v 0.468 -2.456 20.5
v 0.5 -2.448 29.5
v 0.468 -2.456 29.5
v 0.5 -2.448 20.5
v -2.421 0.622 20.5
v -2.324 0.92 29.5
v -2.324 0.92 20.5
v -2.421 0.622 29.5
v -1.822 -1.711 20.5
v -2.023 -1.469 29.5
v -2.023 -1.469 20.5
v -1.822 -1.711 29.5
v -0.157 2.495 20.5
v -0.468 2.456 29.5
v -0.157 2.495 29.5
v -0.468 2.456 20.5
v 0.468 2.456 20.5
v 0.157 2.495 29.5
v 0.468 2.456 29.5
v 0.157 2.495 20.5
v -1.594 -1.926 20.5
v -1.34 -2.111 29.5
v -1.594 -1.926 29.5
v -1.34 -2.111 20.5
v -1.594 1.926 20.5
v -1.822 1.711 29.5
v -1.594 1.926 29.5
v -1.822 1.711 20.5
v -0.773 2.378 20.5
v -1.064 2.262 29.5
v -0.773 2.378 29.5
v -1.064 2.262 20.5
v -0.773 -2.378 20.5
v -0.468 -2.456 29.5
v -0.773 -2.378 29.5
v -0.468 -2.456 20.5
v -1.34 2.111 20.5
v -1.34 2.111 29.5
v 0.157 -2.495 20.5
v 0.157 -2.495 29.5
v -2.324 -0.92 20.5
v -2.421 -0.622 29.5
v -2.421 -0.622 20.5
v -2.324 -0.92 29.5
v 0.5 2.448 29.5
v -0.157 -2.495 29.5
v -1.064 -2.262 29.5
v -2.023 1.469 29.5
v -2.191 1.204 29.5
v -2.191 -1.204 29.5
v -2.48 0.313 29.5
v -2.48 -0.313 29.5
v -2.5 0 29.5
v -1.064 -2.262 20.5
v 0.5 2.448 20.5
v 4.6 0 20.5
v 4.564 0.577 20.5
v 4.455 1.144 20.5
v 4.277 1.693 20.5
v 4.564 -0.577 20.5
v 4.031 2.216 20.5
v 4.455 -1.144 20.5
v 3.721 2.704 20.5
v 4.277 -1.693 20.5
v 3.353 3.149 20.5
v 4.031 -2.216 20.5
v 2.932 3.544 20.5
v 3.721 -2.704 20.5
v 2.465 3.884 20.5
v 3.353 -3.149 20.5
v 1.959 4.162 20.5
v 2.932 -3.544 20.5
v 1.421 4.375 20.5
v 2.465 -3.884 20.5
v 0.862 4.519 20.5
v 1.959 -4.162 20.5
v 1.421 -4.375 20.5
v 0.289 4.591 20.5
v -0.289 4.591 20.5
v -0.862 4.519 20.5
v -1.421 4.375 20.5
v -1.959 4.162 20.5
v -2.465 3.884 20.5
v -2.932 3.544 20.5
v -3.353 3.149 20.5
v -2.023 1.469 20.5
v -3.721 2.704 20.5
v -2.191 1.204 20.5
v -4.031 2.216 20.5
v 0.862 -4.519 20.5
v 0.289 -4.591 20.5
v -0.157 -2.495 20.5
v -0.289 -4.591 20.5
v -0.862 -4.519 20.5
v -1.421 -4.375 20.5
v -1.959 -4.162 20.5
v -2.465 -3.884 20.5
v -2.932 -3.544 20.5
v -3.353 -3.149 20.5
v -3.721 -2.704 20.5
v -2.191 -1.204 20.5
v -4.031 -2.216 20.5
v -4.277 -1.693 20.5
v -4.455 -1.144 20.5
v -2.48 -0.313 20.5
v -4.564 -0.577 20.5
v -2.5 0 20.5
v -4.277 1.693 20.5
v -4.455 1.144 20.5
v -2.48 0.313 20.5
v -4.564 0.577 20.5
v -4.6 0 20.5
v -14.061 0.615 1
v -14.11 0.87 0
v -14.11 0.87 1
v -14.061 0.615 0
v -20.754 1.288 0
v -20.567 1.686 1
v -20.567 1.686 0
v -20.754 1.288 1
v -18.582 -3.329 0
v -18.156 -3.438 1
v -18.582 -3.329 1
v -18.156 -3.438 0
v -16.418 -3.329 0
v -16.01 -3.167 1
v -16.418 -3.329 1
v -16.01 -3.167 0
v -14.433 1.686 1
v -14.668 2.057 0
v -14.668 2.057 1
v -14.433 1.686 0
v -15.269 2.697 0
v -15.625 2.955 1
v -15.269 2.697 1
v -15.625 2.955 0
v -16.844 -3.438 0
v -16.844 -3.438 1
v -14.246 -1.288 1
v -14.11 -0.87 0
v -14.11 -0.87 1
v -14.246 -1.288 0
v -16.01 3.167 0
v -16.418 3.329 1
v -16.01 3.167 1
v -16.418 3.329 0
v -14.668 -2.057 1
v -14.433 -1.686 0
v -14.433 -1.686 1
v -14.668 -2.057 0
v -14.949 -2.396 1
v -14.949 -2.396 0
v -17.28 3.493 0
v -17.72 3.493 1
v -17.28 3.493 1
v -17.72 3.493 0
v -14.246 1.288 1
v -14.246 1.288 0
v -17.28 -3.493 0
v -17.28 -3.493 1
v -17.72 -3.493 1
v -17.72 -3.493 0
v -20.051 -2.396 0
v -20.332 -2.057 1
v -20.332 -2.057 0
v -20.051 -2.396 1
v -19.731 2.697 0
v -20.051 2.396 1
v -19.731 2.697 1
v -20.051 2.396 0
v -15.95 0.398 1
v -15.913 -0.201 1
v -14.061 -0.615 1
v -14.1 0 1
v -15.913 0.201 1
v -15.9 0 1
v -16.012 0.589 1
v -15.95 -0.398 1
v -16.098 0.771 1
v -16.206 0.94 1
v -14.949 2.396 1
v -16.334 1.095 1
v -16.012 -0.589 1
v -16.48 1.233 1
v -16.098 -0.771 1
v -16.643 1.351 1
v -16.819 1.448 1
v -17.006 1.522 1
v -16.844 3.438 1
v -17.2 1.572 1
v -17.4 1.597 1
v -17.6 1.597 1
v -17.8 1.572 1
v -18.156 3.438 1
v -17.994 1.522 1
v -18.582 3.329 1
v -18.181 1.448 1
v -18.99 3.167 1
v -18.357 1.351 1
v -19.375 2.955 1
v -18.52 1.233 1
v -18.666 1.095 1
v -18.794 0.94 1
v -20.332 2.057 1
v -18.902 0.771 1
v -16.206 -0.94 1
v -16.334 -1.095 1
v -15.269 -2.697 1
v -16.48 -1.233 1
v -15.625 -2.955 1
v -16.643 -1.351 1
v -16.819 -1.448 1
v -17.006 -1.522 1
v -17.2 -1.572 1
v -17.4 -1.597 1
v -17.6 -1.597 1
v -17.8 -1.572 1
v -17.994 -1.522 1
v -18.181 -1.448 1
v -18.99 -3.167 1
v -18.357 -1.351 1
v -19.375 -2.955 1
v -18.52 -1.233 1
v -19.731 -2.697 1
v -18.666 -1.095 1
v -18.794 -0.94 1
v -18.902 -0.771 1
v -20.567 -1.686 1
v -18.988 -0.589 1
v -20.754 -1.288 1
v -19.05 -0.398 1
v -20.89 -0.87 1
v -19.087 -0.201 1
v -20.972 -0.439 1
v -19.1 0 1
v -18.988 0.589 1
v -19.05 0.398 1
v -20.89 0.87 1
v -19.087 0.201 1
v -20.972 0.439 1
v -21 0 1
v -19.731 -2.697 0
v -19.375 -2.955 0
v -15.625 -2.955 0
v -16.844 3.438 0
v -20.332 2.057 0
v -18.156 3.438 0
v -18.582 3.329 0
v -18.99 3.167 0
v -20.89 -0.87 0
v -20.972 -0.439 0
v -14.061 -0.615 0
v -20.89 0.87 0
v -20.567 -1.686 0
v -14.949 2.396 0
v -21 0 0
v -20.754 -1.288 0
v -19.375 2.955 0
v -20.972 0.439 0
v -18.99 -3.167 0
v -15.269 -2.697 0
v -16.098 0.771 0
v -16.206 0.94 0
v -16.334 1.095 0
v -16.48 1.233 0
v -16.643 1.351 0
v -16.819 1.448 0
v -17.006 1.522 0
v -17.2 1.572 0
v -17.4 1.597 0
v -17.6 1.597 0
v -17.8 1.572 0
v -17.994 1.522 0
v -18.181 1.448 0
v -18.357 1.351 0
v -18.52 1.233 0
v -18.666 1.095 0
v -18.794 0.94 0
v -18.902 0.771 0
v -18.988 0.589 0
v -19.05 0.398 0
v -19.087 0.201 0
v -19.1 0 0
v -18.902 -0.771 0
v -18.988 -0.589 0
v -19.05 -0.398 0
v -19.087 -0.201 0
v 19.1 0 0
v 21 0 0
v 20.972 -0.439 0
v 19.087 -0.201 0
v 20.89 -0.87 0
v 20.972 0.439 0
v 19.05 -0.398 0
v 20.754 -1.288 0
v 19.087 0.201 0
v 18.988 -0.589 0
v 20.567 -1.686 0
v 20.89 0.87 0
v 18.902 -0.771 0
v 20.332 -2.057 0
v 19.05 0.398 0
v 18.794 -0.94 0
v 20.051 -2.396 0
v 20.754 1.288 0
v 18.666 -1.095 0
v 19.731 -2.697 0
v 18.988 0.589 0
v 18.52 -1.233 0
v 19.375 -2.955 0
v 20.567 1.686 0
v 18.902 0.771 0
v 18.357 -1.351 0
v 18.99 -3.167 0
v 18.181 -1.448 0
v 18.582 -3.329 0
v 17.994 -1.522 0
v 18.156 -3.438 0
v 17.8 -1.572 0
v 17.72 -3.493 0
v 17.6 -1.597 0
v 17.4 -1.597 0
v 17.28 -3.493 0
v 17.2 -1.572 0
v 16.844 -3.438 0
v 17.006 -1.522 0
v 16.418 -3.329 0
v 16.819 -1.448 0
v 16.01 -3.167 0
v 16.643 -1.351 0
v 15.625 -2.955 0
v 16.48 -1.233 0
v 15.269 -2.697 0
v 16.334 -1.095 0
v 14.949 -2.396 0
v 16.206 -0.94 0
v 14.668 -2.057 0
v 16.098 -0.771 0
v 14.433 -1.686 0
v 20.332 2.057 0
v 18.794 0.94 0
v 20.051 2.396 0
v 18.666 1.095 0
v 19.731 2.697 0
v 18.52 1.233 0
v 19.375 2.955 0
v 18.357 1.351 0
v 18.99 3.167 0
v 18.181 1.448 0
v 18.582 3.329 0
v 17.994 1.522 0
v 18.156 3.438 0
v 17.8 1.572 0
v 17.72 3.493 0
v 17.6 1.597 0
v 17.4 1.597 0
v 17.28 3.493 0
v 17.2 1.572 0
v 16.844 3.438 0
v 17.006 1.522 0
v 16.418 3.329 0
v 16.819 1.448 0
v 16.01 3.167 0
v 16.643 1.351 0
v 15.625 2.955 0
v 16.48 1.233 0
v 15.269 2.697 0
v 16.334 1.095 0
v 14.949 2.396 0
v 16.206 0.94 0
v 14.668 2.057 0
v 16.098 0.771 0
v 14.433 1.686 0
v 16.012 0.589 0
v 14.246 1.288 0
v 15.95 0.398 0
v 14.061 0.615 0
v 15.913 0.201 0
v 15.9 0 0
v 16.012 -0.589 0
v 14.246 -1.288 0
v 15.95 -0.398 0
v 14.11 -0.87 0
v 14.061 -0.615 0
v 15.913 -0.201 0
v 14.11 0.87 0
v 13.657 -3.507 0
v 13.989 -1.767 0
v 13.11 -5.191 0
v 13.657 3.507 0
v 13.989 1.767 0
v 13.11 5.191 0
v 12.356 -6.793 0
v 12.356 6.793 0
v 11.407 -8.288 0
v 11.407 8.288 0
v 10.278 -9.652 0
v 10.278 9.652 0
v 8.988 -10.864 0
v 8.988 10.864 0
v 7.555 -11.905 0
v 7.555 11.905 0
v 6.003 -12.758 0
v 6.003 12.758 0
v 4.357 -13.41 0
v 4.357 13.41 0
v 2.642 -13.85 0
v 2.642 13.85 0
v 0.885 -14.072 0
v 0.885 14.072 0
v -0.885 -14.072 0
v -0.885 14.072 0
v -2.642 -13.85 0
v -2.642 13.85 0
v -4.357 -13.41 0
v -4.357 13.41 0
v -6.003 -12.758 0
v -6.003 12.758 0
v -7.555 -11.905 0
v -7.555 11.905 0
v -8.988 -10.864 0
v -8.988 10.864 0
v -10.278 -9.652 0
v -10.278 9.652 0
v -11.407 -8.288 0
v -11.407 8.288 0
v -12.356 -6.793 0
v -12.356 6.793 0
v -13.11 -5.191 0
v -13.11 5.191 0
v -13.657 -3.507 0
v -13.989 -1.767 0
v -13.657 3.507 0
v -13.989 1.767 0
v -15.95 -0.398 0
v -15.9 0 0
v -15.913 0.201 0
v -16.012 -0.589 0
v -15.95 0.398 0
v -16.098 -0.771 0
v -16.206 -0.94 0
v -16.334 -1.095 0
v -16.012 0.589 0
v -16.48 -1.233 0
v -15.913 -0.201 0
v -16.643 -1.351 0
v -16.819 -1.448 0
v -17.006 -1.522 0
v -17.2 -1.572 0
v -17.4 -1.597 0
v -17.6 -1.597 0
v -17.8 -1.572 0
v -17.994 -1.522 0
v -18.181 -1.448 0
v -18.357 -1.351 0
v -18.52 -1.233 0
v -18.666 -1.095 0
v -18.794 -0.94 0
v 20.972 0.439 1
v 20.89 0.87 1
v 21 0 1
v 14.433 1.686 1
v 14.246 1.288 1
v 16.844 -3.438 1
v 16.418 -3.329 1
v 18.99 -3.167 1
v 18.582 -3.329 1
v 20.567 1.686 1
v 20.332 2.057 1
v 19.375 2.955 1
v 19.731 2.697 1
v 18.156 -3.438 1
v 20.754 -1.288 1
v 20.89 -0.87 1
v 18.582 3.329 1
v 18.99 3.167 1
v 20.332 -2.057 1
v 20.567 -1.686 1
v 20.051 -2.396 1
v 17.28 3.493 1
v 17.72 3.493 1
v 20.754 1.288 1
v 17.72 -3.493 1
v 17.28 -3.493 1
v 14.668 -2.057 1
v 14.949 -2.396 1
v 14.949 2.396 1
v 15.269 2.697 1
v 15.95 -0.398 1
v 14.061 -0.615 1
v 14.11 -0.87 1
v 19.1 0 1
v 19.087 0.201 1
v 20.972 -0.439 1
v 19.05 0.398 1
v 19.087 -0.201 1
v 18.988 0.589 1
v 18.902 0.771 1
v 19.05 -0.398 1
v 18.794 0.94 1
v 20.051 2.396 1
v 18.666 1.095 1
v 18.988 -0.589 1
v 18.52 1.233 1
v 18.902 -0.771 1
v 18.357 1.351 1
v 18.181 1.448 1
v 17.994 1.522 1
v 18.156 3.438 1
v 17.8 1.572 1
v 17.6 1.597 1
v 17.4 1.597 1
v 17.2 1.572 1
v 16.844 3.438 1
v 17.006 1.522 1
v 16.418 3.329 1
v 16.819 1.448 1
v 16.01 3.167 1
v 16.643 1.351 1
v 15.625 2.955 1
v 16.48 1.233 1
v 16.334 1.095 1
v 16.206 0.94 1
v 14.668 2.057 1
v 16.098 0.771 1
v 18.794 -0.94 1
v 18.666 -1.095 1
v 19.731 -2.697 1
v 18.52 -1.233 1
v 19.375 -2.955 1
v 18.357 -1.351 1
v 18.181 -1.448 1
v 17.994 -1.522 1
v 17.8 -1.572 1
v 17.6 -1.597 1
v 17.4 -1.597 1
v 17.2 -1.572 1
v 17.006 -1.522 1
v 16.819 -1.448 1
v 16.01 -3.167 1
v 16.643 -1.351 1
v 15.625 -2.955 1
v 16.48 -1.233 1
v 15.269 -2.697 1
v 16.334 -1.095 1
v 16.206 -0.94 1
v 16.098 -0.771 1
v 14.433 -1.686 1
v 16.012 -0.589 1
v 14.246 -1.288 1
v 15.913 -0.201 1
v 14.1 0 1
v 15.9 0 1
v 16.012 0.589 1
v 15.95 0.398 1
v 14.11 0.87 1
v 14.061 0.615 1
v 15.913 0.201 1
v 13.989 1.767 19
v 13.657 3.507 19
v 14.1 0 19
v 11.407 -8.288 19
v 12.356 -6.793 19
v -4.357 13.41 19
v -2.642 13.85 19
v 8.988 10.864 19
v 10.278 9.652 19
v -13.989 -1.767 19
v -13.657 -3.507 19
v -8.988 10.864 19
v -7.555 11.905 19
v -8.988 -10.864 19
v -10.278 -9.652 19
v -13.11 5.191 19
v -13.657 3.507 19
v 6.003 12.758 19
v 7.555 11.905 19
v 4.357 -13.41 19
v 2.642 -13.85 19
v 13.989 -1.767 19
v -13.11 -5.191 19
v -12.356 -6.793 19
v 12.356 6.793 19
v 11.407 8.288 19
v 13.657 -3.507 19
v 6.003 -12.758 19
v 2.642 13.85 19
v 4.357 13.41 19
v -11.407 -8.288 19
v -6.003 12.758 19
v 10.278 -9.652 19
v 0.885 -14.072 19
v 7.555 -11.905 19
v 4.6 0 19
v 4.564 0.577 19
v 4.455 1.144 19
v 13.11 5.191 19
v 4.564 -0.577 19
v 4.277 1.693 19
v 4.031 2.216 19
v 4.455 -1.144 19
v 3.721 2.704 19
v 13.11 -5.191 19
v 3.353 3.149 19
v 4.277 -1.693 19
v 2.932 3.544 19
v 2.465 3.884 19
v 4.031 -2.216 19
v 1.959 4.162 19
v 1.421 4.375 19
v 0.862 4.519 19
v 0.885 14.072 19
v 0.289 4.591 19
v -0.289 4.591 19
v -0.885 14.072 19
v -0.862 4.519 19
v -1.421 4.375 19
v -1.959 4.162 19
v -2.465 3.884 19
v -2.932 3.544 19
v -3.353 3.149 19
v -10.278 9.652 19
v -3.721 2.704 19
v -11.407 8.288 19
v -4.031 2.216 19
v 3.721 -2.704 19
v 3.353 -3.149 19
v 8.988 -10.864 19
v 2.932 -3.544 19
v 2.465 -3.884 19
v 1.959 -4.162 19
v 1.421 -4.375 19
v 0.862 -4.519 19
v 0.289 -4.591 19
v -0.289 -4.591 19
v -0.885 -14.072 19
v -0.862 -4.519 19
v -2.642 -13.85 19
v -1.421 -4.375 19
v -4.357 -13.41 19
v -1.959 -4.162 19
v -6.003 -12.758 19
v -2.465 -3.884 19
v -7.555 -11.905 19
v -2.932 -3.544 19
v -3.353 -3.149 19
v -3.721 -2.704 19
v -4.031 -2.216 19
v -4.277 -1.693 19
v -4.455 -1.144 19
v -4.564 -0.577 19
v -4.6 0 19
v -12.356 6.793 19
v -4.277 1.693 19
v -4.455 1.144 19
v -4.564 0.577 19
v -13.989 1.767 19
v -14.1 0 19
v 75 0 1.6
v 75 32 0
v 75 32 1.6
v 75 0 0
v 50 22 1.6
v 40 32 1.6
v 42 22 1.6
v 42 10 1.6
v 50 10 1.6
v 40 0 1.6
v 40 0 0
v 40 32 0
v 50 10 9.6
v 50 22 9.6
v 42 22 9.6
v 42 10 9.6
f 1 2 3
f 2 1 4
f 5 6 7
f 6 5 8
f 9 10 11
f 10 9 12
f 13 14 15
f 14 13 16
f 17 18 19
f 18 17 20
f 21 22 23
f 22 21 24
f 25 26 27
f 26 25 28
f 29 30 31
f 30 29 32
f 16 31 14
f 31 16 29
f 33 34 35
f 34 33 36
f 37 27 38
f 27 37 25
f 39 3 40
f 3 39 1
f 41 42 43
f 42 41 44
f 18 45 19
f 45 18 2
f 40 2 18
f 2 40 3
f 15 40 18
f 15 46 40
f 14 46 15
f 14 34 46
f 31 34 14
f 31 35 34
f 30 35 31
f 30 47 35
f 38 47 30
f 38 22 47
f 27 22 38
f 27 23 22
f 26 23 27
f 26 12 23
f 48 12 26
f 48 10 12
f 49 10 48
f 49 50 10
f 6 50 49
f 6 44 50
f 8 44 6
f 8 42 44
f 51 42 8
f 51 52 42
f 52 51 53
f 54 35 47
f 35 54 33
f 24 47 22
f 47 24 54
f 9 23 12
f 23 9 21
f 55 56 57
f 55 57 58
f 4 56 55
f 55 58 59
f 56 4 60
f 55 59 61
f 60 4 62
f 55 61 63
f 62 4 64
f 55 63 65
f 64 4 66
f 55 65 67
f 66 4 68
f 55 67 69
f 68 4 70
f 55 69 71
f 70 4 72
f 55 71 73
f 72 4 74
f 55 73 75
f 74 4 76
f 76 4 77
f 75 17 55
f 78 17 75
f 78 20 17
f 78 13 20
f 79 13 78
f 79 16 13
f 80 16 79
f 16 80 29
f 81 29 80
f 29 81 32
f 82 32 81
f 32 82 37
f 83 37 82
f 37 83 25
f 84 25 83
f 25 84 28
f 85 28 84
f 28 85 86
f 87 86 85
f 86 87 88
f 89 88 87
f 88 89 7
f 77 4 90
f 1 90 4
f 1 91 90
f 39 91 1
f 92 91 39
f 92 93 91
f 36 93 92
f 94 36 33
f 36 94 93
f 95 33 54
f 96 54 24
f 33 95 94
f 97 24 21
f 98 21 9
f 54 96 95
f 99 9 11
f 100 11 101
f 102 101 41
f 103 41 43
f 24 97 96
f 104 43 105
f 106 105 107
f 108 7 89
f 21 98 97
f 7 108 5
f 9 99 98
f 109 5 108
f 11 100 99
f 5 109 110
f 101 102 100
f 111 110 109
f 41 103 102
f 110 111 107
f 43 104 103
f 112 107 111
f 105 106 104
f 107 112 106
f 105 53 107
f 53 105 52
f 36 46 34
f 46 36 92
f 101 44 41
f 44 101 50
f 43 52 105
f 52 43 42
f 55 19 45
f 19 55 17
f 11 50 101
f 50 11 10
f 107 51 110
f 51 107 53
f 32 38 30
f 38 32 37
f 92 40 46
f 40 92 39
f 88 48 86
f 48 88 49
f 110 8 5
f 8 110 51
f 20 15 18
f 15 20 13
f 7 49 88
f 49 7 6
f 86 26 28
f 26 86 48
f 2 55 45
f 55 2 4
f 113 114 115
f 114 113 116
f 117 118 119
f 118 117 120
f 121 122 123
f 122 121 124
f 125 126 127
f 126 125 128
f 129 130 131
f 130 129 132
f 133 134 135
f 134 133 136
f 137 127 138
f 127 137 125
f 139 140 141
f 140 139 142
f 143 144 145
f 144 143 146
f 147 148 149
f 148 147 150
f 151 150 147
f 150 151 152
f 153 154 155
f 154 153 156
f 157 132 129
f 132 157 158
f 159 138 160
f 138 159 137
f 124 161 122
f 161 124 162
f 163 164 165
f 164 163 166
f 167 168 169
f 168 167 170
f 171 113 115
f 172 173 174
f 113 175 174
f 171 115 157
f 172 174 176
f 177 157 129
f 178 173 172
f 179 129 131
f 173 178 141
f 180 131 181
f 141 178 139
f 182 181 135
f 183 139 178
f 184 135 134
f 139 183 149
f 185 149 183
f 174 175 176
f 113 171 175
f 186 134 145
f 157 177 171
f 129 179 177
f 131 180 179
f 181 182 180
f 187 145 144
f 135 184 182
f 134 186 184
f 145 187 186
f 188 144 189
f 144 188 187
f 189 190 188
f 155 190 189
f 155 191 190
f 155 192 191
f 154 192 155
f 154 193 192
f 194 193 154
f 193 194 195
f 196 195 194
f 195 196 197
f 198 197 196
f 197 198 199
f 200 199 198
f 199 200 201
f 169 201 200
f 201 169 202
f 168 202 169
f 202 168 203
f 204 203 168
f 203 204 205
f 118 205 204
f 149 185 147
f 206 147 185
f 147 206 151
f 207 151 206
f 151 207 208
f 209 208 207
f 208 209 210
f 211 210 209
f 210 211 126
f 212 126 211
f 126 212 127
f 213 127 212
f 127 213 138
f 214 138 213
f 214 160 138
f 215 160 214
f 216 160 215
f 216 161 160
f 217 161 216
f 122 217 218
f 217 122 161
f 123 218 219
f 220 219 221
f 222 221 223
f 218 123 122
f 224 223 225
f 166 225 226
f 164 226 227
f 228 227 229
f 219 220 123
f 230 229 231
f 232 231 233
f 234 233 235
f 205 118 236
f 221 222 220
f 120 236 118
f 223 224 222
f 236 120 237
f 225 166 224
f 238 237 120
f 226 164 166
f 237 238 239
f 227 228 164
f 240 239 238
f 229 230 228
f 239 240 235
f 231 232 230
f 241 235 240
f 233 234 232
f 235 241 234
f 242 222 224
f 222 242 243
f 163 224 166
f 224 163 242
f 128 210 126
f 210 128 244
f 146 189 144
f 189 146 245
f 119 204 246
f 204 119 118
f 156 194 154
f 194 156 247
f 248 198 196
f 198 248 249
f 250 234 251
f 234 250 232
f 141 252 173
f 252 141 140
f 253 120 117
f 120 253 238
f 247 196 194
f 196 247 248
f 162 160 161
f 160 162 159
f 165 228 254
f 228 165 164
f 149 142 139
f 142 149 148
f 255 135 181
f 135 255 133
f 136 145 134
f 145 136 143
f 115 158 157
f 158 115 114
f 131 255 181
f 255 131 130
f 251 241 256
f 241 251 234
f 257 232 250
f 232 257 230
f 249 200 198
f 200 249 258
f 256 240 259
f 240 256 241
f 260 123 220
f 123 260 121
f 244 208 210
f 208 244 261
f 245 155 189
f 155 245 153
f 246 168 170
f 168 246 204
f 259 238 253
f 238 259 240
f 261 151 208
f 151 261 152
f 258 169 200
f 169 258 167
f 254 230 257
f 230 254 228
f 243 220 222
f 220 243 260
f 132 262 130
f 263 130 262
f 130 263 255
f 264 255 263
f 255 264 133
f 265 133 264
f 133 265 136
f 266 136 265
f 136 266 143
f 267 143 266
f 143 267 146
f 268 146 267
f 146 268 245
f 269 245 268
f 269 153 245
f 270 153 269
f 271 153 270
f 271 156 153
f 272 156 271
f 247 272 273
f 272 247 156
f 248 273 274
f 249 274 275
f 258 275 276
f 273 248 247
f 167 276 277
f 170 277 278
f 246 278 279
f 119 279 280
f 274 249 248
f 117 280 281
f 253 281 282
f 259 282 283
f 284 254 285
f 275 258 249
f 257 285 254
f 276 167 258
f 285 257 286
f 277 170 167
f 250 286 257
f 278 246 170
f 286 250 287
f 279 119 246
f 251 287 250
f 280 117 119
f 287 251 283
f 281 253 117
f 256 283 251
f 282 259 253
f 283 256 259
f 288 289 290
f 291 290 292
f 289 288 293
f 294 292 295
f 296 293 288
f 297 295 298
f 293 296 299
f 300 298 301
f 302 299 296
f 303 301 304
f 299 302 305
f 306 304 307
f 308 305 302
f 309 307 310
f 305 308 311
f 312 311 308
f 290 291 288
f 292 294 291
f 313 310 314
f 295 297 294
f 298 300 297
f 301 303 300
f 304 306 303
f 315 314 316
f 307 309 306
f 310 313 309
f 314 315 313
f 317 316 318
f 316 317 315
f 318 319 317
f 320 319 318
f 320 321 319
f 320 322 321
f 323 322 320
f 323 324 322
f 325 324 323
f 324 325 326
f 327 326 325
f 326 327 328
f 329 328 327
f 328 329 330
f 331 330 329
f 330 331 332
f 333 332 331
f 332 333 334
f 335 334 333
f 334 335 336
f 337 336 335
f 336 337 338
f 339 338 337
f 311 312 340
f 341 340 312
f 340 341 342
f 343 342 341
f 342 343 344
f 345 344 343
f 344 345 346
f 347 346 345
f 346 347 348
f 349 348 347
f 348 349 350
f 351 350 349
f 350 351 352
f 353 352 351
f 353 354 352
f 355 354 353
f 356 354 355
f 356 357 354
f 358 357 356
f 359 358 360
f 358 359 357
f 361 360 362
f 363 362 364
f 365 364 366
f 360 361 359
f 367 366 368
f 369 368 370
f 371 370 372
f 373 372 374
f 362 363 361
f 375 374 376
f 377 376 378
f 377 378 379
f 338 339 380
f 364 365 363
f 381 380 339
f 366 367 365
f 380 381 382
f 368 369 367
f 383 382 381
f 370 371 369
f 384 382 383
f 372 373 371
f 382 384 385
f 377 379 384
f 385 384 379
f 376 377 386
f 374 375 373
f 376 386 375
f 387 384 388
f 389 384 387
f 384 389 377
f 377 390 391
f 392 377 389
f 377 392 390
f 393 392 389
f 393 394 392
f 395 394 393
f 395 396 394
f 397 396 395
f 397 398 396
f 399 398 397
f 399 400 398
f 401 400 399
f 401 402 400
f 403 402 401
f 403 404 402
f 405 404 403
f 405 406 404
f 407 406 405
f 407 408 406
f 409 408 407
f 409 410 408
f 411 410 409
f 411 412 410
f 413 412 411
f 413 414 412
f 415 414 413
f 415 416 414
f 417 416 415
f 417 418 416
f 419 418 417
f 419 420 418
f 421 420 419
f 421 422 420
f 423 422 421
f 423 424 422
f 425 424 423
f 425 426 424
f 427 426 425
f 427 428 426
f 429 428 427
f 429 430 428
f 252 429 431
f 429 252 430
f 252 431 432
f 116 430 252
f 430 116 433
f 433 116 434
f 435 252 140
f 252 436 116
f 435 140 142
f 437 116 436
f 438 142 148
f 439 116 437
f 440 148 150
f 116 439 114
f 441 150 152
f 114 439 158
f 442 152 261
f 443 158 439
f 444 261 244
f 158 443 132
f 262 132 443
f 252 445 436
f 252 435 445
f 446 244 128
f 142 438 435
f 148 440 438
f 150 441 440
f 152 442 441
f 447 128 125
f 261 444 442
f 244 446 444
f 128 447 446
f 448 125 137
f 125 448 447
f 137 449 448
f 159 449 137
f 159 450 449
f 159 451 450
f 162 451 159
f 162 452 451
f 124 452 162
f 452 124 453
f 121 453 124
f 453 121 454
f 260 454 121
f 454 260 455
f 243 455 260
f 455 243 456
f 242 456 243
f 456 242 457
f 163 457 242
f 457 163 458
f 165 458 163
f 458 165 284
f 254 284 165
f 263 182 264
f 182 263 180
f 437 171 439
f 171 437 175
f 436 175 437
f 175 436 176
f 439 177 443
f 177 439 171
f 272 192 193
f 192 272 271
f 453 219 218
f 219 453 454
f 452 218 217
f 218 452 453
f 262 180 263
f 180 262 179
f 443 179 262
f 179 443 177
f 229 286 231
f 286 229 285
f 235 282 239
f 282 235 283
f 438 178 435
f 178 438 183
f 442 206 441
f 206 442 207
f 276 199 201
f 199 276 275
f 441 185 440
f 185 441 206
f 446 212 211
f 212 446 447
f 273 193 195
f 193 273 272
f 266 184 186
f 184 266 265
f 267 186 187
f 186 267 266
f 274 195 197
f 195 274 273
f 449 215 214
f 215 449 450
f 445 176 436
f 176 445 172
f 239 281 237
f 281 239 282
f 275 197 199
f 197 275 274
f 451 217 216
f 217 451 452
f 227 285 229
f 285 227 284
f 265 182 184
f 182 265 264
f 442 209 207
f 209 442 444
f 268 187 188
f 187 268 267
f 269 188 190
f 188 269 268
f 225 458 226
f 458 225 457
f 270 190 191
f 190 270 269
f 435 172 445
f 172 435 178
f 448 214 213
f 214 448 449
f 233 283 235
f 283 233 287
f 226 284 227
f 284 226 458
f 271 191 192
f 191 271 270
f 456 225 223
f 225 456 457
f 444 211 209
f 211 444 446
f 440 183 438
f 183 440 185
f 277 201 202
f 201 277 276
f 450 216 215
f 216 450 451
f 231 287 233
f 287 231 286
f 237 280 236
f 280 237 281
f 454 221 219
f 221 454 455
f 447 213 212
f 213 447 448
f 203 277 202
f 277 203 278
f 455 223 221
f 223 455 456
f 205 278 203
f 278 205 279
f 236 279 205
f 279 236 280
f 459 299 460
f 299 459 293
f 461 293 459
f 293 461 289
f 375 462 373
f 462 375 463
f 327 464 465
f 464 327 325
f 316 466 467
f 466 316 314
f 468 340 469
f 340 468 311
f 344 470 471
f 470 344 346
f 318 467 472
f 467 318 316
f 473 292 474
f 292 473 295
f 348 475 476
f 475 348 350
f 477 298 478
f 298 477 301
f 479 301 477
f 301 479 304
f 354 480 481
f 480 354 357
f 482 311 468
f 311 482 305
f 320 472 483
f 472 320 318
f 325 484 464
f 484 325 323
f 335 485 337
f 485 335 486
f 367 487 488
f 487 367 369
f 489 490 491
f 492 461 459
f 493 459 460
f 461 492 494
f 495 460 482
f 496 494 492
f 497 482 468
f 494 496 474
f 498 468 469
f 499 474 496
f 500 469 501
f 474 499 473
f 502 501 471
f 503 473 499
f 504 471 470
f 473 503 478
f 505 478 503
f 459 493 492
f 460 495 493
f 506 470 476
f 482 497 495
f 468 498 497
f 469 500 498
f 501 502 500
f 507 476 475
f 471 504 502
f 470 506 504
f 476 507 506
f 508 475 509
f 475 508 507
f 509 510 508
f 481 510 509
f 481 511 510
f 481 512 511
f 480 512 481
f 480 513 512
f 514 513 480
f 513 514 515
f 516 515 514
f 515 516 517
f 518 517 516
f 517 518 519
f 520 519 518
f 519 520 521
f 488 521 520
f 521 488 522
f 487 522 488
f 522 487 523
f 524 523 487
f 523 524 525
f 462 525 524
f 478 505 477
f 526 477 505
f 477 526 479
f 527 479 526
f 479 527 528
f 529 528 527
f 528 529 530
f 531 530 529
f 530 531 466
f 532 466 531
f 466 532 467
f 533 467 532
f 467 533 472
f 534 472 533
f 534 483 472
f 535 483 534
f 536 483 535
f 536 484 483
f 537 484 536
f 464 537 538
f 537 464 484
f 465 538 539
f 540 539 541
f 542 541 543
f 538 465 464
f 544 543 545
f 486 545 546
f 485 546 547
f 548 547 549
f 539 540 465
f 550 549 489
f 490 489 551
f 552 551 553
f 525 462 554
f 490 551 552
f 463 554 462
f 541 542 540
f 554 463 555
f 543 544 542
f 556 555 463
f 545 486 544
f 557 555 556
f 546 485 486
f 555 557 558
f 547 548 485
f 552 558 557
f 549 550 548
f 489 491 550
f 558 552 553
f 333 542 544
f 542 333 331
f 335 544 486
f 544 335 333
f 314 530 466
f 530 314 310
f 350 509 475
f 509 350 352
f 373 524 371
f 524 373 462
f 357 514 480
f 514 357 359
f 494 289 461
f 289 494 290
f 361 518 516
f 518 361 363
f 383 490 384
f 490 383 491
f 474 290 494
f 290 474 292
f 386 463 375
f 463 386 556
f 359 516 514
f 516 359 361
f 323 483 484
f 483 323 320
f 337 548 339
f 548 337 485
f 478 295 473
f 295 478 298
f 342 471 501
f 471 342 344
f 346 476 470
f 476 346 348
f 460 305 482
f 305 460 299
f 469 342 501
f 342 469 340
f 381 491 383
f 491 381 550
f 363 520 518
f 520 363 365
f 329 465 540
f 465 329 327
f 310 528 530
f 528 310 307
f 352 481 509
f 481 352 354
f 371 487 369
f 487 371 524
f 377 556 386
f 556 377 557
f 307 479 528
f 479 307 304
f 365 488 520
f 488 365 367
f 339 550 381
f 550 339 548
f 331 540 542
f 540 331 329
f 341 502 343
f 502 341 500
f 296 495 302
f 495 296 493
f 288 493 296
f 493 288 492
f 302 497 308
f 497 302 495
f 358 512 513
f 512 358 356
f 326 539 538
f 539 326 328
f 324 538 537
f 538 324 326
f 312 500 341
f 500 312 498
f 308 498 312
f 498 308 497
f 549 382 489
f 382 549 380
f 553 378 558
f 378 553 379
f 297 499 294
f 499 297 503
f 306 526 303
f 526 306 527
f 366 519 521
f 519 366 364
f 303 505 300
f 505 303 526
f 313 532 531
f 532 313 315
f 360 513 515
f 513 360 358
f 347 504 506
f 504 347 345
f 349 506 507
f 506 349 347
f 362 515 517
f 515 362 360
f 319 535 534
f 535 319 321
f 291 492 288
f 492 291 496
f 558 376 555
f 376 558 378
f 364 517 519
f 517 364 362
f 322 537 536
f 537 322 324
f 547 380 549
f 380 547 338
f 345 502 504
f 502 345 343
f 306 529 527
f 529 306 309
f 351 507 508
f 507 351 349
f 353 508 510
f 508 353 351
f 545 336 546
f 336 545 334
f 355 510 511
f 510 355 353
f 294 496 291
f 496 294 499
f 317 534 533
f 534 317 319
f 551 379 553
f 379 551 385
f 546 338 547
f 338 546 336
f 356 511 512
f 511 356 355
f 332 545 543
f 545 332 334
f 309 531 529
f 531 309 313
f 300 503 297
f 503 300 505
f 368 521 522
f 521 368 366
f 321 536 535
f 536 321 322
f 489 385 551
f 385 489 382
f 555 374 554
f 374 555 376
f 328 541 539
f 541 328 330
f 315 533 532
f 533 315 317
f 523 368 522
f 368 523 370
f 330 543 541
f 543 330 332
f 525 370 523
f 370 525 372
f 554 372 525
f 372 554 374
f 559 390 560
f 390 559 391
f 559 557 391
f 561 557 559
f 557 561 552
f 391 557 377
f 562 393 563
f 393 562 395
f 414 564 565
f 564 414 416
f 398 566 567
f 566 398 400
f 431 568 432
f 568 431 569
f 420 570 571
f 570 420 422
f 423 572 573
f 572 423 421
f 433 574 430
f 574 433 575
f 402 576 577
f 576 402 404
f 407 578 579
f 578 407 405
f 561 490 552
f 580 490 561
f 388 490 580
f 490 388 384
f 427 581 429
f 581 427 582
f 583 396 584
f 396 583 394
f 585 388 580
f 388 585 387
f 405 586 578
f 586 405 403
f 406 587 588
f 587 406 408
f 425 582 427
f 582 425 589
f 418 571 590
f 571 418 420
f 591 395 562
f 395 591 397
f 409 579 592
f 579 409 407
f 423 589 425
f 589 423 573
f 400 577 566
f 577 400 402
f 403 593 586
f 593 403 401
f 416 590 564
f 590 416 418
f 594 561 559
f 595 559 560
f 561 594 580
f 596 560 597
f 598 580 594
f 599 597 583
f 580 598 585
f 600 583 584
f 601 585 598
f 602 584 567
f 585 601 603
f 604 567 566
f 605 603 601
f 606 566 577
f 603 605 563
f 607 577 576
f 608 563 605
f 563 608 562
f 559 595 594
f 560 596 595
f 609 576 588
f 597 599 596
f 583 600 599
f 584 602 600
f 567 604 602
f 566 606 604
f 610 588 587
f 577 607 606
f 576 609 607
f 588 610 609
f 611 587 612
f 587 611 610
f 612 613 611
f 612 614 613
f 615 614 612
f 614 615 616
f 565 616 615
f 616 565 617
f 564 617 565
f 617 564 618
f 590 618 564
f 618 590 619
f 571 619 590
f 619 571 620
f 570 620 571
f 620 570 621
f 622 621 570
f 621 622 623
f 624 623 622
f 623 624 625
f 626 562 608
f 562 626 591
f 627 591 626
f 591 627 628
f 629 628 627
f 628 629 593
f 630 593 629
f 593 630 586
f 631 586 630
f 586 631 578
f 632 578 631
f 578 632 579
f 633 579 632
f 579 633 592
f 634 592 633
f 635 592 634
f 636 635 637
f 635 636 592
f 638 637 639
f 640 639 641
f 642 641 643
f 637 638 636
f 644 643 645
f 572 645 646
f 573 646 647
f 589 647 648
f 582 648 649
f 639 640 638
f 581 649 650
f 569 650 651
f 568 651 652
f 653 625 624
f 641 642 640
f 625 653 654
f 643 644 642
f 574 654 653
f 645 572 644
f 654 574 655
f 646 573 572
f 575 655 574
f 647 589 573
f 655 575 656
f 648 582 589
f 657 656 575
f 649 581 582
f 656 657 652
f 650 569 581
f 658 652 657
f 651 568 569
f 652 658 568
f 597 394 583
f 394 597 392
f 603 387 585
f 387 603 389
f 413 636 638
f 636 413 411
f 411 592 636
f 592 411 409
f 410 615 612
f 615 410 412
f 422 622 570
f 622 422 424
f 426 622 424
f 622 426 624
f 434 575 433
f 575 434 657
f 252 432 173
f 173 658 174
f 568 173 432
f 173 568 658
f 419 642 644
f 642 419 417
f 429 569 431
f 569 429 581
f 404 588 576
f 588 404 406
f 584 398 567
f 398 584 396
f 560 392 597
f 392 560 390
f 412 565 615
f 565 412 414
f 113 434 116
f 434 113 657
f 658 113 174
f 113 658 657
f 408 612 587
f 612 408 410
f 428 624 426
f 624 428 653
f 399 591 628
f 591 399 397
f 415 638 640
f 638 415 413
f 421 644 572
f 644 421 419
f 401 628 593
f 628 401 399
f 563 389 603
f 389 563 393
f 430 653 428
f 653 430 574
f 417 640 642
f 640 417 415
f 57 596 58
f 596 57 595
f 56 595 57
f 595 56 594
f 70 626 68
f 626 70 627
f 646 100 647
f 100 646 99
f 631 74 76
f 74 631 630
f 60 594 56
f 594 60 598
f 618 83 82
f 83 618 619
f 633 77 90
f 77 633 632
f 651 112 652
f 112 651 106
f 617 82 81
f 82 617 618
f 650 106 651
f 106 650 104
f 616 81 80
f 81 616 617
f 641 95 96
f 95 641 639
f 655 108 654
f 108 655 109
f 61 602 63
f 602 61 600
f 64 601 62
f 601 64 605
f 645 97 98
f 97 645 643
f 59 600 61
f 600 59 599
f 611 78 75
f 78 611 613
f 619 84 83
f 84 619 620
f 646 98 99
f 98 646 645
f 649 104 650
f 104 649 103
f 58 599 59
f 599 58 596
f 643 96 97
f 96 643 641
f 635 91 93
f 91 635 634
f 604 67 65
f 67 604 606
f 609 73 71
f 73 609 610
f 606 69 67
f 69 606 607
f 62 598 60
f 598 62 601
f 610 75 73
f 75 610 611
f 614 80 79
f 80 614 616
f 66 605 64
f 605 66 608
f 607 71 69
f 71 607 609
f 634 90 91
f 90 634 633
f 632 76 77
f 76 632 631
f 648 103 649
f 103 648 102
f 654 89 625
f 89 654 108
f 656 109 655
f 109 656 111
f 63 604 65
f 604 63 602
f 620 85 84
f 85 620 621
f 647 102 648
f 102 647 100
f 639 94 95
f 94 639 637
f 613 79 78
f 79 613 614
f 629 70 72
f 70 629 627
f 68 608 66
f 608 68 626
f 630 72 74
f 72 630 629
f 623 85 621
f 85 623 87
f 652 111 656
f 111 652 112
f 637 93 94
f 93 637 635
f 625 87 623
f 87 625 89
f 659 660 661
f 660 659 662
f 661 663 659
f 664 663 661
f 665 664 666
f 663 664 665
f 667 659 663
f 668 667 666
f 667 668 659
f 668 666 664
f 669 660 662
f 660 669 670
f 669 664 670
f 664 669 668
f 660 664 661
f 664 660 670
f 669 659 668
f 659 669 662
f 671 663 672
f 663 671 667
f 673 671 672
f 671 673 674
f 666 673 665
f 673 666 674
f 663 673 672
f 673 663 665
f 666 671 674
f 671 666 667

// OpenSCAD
/*
  =============================================================================
  90_Componentes_Referencia.scad - Modelos Visuais de Referência
  =============================================================================
  Modelos simplificados não-imprimíveis para visualização na montagem.
  Usa d_shaft_solid() unificado para o eixo D do motor.
  =============================================================================
*/

include <00_Parametros.scad>;

module motor_28byj48_reference() {
  // Corpo cilíndrico do motor
  color([0.7, 0.7, 0.72])
    cylinder(r=motor_body_r, h=motor_body_h);

  // Boss de saída do eixo
  color([0.65, 0.65, 0.68])
    translate([0, 0, motor_body_h])
      cylinder(r=motor_boss_r, h=motor_boss_h);

  // Eixo D (usando módulo unificado)
  color([0.8, 0.8, 0.85])
    translate([0, 0, motor_body_h + motor_boss_h])
      d_shaft_solid(h=motor_shaft_length);

  // Furos de montagem (flanges laterais)
  color([0.6, 0.6, 0.63])
  for (dx = [-motor_flange_dist/2, motor_flange_dist/2]) {
    translate([dx, 0, 0])
      difference() {
        cylinder(r=3.5, h=1.0);
        translate([0, 0, -EPS])
          cylinder(r=motor_flange_hole_r, h=1.0 + EPS*2);
      }
  }
}

module driver_uln2003_reference() {
  color([0.15, 0.35, 0.15])
    cube([35, 32, 1.6], center=false);
  // Conector
  color([0.9, 0.9, 0.9])
    translate([2, 10, 1.6])
      cube([8, 12, 8]);
}

// Teste visual isolado
motor_28byj48_reference();
translate([40, 0, 0]) driver_uln2003_reference();
